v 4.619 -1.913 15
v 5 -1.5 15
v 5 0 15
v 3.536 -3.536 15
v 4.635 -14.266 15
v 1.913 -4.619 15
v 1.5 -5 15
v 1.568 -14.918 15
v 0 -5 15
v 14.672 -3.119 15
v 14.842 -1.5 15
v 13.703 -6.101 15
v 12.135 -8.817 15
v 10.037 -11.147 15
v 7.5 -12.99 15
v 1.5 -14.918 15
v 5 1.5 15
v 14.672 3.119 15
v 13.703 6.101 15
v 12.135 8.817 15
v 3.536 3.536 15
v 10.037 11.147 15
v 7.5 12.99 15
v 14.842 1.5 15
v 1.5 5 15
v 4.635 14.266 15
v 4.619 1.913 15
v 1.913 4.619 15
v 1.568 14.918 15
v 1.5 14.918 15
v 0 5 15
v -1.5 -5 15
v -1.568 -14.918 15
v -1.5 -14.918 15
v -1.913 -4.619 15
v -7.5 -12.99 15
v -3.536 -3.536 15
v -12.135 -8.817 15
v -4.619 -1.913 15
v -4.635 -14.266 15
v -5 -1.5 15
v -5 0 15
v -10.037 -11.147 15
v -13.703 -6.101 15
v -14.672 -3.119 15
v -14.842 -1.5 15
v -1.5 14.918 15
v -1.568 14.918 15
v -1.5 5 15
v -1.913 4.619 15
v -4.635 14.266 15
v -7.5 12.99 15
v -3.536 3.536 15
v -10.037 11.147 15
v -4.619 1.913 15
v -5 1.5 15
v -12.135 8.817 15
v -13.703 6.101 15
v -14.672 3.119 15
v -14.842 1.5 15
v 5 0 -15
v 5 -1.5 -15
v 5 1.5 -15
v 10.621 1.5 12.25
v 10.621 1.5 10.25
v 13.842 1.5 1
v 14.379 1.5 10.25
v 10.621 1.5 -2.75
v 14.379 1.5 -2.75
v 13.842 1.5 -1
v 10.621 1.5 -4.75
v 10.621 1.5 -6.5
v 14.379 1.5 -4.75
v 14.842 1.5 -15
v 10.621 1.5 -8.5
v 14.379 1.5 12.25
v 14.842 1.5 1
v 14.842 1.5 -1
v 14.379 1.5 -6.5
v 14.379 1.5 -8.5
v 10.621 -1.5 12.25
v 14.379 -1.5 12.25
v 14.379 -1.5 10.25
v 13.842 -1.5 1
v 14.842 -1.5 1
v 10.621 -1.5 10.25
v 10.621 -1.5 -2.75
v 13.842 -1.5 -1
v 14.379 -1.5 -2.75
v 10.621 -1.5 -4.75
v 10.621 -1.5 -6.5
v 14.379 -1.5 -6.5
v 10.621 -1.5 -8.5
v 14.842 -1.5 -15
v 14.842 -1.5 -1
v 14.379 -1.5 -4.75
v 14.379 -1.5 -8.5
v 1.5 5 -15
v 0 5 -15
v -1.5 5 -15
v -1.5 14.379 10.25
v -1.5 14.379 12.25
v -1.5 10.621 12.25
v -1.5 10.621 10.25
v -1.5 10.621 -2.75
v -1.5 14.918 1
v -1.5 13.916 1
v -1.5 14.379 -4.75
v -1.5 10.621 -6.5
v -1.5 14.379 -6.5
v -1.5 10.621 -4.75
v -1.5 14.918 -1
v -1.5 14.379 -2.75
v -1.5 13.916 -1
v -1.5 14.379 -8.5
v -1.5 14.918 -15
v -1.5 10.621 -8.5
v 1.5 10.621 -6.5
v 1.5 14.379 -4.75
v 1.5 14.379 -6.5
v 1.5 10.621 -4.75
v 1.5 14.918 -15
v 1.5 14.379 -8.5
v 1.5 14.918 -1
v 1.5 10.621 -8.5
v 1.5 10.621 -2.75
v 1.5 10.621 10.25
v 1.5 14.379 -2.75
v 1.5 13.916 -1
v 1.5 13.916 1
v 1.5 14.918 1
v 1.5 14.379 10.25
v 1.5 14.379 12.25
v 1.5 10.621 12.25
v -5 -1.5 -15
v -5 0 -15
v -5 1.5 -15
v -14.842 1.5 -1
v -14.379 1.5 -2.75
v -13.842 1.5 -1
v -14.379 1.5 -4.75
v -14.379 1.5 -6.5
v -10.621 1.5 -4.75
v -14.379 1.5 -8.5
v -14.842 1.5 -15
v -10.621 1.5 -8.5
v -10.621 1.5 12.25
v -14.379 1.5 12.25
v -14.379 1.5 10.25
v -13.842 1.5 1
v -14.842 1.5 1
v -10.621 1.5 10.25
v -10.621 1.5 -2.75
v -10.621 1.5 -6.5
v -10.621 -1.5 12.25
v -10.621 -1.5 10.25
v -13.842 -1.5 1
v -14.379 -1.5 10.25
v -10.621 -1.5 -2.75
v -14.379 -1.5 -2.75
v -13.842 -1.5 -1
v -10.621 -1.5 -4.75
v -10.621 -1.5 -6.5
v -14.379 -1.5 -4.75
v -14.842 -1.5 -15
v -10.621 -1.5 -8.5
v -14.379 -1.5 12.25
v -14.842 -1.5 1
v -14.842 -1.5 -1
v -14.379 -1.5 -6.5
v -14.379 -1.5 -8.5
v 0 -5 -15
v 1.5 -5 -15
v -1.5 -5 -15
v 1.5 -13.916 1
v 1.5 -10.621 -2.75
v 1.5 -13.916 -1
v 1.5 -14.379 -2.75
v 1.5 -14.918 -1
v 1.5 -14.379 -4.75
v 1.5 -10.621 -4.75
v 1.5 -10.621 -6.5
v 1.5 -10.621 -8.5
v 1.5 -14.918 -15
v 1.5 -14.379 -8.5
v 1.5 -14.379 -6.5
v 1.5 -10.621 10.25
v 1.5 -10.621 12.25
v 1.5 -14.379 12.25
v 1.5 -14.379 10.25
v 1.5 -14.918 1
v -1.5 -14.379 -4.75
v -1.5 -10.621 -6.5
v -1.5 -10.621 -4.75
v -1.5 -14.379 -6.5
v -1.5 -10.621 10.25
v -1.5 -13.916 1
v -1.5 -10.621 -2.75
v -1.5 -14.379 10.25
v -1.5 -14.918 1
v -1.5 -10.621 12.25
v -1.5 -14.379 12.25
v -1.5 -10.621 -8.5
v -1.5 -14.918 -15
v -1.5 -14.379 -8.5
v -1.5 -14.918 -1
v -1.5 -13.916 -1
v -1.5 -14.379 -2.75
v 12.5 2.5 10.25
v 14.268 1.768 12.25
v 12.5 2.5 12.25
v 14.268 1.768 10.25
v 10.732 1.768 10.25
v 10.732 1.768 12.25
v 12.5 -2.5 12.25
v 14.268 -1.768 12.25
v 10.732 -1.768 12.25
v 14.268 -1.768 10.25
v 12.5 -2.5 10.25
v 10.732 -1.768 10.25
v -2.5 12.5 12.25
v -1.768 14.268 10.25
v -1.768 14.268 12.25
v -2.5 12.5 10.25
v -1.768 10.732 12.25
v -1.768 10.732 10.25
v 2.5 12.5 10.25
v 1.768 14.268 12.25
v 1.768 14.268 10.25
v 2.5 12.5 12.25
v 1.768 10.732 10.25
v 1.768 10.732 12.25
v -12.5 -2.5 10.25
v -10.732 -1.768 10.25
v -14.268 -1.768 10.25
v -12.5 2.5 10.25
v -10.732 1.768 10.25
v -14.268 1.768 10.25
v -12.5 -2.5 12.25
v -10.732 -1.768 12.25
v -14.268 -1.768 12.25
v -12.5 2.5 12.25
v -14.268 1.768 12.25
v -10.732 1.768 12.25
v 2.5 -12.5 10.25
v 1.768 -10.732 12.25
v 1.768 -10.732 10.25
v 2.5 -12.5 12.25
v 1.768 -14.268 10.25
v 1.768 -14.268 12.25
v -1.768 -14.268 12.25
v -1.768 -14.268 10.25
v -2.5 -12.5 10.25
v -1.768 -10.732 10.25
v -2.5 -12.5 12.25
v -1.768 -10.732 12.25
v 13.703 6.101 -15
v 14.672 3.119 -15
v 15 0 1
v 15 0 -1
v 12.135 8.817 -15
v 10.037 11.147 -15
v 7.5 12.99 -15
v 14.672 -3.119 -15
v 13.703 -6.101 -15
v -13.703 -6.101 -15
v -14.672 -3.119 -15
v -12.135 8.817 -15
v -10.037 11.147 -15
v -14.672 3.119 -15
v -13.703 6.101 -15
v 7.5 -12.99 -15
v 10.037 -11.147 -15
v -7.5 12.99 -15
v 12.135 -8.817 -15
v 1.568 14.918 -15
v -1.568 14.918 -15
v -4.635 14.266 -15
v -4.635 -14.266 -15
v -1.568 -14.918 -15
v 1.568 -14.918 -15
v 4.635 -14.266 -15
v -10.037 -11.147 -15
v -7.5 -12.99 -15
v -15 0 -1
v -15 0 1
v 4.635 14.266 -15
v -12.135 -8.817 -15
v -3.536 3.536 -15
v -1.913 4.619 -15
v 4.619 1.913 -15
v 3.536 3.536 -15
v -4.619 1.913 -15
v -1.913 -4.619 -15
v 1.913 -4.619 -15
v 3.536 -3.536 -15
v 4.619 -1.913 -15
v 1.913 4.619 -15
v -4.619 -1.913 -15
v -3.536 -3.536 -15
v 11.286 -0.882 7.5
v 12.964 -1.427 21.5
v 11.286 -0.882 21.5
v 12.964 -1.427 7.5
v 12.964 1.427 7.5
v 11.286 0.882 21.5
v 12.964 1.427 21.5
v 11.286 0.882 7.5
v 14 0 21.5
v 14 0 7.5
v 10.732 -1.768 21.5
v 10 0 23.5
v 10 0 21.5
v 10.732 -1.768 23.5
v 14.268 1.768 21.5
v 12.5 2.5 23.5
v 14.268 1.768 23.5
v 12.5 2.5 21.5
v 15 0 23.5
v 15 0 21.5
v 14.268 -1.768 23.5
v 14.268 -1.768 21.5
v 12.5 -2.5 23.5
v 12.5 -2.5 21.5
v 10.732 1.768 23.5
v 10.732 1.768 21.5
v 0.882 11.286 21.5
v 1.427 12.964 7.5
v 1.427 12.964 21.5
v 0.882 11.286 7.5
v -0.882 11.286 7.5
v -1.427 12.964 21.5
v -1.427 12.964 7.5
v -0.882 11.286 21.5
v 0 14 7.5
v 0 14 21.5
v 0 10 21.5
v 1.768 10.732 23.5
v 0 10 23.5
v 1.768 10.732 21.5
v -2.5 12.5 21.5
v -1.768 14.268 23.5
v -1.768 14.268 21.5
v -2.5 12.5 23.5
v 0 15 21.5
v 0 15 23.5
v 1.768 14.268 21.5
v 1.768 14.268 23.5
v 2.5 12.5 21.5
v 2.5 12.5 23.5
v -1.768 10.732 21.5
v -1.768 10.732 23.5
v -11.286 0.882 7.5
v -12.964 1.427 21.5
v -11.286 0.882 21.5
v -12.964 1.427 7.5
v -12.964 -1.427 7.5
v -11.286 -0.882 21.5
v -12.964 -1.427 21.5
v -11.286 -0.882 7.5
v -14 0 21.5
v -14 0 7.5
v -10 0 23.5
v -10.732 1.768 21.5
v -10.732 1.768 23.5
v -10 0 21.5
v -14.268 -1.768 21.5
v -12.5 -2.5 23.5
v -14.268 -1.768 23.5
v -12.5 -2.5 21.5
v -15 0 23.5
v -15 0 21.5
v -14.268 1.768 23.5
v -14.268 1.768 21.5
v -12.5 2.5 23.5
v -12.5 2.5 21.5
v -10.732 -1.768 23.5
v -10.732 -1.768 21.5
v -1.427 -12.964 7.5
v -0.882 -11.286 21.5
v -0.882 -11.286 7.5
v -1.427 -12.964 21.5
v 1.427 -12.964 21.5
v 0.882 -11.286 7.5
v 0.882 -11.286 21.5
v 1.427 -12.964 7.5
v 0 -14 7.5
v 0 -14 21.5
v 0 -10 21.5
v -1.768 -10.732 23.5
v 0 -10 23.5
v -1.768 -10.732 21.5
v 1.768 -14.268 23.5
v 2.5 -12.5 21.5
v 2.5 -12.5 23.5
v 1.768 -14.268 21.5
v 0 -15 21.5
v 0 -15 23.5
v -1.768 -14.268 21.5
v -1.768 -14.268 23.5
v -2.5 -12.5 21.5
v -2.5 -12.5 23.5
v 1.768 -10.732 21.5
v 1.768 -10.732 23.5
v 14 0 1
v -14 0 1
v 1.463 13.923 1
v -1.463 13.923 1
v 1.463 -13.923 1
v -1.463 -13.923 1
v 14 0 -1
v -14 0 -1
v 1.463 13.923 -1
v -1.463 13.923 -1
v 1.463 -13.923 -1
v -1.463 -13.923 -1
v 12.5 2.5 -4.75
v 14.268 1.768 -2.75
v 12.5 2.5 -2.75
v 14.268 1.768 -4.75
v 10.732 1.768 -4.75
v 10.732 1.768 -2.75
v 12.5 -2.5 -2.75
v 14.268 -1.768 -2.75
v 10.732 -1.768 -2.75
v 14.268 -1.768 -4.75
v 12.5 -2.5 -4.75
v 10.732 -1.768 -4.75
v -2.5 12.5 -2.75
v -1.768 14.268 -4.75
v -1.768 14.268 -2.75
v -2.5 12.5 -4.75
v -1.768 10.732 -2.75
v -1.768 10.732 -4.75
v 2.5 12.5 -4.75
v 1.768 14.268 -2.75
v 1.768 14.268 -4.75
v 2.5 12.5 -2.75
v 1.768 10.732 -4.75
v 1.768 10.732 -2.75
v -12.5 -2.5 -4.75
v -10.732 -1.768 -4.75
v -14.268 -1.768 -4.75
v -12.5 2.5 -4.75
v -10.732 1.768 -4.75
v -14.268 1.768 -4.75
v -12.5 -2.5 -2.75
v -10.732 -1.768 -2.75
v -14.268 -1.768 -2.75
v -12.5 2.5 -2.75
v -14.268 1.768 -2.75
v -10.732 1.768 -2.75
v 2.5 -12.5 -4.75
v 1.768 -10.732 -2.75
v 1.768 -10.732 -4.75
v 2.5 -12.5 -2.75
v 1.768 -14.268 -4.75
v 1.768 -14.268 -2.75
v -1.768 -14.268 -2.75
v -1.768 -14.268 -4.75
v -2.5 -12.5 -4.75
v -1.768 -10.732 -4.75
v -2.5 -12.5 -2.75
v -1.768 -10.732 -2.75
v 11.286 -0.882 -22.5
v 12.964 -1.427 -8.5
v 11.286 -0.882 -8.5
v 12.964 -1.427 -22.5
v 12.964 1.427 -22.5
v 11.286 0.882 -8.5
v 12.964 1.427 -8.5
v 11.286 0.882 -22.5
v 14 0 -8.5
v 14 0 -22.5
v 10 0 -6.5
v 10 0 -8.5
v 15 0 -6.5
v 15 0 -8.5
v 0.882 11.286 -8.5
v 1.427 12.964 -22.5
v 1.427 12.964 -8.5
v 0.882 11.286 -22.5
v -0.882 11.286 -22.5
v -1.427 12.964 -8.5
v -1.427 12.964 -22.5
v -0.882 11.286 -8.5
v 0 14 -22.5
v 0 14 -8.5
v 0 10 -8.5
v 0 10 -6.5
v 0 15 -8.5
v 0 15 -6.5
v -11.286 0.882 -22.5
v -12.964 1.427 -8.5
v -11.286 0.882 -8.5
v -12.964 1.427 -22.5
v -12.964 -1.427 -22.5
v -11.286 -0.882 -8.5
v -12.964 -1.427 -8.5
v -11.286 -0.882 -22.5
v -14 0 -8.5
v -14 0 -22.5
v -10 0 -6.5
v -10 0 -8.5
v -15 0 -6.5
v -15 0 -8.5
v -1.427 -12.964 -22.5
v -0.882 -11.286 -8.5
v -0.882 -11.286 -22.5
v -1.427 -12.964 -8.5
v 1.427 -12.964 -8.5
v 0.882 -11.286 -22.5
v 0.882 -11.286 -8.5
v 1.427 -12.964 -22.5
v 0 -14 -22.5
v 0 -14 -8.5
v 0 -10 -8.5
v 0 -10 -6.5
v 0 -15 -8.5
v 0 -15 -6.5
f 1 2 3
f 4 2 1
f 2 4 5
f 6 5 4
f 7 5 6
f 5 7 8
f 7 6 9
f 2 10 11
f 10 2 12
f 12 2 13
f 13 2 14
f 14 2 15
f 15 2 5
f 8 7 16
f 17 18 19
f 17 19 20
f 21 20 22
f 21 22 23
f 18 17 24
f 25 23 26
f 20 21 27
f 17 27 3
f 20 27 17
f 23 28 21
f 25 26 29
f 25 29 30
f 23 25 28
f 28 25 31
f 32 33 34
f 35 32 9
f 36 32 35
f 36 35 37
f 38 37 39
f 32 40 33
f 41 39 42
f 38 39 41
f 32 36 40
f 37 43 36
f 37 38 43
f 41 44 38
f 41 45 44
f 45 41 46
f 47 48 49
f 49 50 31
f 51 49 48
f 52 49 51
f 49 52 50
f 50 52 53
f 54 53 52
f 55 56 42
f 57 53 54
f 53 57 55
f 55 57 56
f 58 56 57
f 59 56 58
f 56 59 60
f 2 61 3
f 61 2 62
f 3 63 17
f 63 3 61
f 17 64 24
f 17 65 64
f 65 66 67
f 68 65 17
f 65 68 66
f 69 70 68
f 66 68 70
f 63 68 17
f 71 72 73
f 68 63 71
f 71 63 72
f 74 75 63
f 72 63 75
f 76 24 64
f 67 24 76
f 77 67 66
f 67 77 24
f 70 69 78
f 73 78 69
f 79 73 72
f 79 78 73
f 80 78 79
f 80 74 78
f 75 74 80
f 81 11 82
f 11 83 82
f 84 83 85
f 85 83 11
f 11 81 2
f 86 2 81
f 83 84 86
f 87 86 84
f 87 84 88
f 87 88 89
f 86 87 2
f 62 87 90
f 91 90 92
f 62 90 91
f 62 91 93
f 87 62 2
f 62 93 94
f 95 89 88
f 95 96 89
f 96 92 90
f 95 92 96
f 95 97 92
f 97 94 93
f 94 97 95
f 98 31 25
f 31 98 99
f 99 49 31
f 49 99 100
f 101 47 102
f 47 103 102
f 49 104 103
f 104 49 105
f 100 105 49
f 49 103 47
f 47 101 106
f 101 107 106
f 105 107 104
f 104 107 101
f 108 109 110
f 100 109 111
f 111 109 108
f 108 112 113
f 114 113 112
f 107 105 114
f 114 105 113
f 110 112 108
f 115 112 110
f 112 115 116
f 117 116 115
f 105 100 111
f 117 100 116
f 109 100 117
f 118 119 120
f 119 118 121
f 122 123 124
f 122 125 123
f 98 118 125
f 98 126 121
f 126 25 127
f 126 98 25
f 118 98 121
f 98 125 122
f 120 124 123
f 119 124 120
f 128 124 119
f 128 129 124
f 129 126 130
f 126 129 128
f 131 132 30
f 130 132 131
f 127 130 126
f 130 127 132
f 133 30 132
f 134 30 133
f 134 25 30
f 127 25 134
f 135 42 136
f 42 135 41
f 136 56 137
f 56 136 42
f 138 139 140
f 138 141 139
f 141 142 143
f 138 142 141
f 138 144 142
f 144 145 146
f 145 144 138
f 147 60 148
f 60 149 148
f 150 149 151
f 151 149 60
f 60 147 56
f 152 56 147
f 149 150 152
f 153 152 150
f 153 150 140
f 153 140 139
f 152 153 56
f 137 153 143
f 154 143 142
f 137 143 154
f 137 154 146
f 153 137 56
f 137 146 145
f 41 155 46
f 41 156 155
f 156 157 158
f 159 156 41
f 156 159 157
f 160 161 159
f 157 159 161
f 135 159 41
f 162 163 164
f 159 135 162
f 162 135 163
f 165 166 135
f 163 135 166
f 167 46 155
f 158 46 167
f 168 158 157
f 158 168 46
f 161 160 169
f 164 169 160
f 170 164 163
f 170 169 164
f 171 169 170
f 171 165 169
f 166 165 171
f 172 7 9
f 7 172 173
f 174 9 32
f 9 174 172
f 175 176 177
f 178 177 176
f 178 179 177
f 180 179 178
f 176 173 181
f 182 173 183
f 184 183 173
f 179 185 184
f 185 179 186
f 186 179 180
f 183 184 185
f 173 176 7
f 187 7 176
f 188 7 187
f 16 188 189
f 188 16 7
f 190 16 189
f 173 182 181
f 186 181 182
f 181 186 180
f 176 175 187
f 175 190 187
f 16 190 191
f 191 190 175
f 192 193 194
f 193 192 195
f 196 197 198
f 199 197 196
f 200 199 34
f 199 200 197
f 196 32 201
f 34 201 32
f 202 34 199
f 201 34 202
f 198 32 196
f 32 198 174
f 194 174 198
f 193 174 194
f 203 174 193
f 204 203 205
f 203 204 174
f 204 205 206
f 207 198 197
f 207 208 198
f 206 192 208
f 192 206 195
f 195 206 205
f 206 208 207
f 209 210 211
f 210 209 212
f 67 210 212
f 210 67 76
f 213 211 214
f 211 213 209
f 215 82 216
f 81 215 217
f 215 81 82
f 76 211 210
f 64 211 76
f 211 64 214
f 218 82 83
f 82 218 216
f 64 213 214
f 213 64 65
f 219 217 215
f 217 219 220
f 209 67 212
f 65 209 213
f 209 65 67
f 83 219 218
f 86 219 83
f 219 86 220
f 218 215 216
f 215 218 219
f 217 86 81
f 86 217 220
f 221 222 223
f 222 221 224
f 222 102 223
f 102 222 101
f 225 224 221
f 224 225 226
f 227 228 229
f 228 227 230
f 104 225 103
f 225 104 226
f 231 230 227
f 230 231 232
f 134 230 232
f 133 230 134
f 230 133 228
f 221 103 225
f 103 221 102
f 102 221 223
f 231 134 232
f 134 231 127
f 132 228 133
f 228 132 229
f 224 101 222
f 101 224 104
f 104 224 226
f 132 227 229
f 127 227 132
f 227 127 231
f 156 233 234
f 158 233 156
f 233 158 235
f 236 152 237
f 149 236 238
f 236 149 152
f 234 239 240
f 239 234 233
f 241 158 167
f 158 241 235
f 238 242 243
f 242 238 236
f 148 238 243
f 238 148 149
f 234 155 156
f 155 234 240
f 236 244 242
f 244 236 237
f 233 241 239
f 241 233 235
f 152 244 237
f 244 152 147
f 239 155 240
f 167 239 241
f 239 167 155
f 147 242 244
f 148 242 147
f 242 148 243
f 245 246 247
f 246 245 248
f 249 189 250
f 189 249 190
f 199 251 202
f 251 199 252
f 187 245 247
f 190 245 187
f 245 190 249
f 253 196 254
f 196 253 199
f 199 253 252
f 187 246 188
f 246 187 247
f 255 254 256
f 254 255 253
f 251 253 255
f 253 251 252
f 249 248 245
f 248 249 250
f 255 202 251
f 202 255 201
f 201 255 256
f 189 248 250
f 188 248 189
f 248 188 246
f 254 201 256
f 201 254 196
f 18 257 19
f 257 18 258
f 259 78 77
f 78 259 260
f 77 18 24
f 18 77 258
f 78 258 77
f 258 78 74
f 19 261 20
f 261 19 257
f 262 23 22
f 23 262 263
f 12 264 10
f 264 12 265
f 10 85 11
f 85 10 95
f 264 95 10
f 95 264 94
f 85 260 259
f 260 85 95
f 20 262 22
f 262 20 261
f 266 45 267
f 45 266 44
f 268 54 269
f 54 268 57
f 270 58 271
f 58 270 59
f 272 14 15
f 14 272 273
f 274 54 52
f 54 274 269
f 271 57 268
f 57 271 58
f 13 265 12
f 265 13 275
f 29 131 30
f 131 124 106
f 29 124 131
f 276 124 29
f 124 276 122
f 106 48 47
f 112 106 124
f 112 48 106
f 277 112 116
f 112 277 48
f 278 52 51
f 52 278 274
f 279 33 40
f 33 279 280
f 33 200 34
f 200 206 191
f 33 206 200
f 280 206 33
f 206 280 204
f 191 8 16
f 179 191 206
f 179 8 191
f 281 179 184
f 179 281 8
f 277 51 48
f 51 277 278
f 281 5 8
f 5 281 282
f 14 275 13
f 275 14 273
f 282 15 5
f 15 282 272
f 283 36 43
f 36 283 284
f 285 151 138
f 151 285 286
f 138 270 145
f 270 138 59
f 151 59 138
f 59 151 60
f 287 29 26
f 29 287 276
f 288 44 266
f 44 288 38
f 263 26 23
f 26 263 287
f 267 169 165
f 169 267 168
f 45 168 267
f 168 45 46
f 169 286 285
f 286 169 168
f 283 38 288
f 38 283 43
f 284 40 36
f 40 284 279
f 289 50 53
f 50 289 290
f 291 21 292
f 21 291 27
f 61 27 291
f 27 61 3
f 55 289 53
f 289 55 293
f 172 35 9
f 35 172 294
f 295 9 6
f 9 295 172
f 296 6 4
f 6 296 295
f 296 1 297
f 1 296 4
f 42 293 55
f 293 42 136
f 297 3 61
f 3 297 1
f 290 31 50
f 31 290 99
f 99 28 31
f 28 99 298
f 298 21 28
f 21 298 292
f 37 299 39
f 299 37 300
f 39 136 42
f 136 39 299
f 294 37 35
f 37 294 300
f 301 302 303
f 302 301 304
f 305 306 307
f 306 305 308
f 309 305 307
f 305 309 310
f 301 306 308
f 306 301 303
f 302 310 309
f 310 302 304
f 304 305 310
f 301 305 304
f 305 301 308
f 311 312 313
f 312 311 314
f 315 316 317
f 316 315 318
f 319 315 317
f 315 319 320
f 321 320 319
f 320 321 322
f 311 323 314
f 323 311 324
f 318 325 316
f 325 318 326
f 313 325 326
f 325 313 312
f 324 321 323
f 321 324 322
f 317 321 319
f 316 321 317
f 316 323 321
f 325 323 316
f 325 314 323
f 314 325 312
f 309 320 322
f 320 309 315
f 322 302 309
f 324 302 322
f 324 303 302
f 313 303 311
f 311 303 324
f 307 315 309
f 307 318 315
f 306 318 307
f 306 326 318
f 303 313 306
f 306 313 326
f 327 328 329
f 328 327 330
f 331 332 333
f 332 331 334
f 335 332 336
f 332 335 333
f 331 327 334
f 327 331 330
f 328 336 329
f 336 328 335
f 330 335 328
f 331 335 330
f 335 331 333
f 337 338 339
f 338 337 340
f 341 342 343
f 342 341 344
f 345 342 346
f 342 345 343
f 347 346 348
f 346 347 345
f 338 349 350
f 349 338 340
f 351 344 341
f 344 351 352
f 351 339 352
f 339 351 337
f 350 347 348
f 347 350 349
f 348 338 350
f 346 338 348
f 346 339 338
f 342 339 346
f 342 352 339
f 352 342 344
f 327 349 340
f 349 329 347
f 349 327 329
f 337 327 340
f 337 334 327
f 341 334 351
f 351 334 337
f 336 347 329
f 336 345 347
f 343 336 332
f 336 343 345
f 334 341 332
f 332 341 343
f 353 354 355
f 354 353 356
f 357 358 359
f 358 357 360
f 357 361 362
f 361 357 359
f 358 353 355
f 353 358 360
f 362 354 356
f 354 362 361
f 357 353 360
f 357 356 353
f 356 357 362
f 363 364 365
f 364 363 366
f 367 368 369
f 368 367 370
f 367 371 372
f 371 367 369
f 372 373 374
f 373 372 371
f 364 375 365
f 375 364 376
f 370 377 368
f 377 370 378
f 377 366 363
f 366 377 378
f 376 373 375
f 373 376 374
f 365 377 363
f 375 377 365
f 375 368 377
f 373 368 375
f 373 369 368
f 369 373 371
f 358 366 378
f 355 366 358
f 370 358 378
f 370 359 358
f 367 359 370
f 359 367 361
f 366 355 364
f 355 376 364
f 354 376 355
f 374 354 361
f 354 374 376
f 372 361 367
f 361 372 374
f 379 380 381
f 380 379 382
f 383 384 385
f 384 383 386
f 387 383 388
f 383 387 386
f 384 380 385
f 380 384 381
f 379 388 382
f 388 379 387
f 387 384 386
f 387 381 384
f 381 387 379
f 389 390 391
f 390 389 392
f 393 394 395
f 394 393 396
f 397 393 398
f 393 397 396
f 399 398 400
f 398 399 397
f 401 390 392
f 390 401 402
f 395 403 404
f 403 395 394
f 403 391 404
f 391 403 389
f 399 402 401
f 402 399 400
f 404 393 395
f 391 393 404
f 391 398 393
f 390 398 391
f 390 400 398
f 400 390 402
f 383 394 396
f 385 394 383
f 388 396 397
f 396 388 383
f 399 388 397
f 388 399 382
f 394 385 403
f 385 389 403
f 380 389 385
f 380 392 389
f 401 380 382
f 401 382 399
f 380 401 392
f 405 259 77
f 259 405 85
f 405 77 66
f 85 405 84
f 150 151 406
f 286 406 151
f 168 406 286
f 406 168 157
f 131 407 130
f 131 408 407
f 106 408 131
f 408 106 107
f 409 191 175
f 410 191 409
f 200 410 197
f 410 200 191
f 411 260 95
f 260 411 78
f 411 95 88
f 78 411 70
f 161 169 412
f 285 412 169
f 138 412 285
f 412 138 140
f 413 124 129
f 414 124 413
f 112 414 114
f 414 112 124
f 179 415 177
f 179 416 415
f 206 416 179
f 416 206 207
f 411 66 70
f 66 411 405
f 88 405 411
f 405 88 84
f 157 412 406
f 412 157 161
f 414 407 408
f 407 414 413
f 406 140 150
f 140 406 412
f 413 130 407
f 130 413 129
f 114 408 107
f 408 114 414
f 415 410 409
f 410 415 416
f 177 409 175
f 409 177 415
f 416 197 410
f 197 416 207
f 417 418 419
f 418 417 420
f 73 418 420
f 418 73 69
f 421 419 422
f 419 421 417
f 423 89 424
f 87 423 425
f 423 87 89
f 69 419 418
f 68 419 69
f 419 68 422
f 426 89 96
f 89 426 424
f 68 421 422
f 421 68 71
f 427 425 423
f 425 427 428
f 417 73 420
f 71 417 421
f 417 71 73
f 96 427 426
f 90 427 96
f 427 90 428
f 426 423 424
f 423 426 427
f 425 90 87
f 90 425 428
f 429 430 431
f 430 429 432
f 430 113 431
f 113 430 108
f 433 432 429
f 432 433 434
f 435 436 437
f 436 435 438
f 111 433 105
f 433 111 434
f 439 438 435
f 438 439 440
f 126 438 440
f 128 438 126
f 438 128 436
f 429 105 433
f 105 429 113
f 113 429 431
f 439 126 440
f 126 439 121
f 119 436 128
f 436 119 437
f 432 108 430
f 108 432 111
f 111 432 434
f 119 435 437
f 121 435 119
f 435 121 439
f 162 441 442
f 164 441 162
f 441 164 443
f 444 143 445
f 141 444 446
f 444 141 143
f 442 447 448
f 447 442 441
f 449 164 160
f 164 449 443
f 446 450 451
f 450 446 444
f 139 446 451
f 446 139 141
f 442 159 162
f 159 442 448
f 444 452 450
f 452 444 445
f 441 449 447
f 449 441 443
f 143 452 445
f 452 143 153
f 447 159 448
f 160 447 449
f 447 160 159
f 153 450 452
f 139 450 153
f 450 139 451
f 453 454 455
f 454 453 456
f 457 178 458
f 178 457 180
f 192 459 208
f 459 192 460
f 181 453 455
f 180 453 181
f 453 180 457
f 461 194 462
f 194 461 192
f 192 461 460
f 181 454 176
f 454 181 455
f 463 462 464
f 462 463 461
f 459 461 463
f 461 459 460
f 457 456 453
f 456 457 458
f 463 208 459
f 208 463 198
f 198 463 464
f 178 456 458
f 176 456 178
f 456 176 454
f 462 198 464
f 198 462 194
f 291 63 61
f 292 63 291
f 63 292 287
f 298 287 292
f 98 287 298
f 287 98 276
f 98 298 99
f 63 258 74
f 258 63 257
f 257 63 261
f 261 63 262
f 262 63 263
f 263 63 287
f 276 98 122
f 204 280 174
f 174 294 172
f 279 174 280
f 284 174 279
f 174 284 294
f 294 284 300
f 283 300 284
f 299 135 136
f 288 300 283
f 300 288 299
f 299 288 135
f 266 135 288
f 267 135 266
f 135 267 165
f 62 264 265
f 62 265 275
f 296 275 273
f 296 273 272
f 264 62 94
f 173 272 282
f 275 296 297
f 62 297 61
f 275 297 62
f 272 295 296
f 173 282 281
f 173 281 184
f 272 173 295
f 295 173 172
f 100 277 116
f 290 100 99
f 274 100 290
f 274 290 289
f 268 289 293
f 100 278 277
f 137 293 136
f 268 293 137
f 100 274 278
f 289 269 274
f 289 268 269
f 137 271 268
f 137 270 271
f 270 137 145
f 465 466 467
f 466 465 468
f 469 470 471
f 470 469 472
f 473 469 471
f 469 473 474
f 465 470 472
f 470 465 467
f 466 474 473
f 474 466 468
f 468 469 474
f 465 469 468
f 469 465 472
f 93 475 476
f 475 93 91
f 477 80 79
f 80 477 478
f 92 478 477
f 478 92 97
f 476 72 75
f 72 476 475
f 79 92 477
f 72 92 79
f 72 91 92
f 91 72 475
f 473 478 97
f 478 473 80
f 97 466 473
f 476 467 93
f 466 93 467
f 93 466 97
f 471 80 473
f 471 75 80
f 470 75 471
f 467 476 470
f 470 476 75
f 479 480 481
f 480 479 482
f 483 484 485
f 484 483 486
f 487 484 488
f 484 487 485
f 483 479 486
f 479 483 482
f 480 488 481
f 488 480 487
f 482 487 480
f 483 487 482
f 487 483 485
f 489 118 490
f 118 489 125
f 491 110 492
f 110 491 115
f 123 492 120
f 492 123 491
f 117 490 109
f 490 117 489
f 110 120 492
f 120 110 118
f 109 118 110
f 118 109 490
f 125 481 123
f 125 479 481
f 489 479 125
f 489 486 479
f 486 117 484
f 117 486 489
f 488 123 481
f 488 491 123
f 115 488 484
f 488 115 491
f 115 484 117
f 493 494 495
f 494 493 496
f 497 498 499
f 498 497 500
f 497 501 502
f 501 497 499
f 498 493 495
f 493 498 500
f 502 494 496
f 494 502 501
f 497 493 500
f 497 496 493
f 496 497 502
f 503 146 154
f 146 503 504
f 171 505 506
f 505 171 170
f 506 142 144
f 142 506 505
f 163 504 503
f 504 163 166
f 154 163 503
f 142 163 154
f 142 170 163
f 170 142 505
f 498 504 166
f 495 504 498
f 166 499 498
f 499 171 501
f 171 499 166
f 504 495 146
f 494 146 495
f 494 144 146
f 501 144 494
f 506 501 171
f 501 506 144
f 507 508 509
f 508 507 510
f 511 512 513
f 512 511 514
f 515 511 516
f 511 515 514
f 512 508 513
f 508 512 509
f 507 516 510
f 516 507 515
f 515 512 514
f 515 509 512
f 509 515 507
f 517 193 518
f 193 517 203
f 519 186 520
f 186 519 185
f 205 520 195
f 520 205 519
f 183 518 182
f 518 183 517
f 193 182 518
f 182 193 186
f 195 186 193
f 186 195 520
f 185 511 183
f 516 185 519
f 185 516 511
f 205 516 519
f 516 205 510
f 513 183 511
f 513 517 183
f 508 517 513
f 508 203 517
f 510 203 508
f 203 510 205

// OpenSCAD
// Parameters
hub_diameter = 30; // Diameter of the input and output hubs
hub_height = 15; // Height of the input and output hubs
bore_diameter = 10; // Diameter of the central bore
clamping_slot_width = 3; // Width of the clamping slots
clamping_slot_depth = 10; // Depth of the clamping slots
screw_diameter = 3; // Diameter of the clamping screws
screw_head_diameter = 5; // Diameter of the screw head
screw_head_height = 2; // Height of the screw head
flexible_element_thickness = 2; // Thickness of the flexible element
flexible_element_waviness = 2; // Amplitude of the wavy structure
flexible_element_segments = 36; // Number of segments for the wavy structure

// Input Hub
module input_hub() {
    difference() {
        cylinder(d = hub_diameter, h = hub_height, center = true);
        translate([0, 0, -hub_height / 2])
            cylinder(d = bore_diameter, h = hub_height * 2, center = true);
        for (i = [0, 90, 180, 270]) {
            rotate([0, 0, i])
                translate([hub_diameter / 2 - clamping_slot_depth / 2, 0, -hub_height / 2])
                    cube([clamping_slot_depth, clamping_slot_width, hub_height * 2], center = true);
        }
        for (i = [0, 90, 180, 270]) {
            rotate([0, 0, i])
                translate([hub_diameter / 2 - screw_head_diameter / 2, 0, hub_height / 4])
                    cylinder(d = screw_head_diameter, h = screw_head_height, center = true);
        }
    }
}

// Output Hub
module output_hub() {
    input_hub();
}

// Flexible Element
module flexible_element() {
    difference() {
        cylinder(d = hub_diameter, h = flexible_element_thickness, center = true);
        translate([0, 0, -flexible_element_thickness / 2])
            cylinder(d = hub_diameter - flexible_element_waviness, h = flexible_element_thickness * 2, center = true);
    }
}

// Clamping Screw
module clamping_screw() {
    union() {
        cylinder(d = screw_diameter, h = hub_height, center = true);
        translate([0, 0, hub_height / 2])
            cylinder(d = screw_head_diameter, h = screw_head_height, center = true);
    }
}

// Assembly
module flexible_coupling() {
    // Layer 1: Input Hub and Clamping Screws
    translate([0, 0, hub_height / 2])
        input_hub();
    for (i = [0, 90, 180, 270]) {
        rotate([0, 0, i])
            translate([hub_diameter / 2 - screw_head_diameter / 2, 0, hub_height])
                clamping_screw();
    }

    // Layer 2: Flexible Element
    translate([0, 0, 0])
        flexible_element();

    // Layer 3: Output Hub and Clamping Screws
    translate([0, 0, -hub_height / 2])
        output_hub();
    for (i = [0, 90, 180, 270]) {
        rotate([0, 0, i])
            translate([hub_diameter / 2 - screw_head_diameter / 2, 0, -hub_height])
                clamping_screw();
    }
}

// Render the model
flexible_coupling();
